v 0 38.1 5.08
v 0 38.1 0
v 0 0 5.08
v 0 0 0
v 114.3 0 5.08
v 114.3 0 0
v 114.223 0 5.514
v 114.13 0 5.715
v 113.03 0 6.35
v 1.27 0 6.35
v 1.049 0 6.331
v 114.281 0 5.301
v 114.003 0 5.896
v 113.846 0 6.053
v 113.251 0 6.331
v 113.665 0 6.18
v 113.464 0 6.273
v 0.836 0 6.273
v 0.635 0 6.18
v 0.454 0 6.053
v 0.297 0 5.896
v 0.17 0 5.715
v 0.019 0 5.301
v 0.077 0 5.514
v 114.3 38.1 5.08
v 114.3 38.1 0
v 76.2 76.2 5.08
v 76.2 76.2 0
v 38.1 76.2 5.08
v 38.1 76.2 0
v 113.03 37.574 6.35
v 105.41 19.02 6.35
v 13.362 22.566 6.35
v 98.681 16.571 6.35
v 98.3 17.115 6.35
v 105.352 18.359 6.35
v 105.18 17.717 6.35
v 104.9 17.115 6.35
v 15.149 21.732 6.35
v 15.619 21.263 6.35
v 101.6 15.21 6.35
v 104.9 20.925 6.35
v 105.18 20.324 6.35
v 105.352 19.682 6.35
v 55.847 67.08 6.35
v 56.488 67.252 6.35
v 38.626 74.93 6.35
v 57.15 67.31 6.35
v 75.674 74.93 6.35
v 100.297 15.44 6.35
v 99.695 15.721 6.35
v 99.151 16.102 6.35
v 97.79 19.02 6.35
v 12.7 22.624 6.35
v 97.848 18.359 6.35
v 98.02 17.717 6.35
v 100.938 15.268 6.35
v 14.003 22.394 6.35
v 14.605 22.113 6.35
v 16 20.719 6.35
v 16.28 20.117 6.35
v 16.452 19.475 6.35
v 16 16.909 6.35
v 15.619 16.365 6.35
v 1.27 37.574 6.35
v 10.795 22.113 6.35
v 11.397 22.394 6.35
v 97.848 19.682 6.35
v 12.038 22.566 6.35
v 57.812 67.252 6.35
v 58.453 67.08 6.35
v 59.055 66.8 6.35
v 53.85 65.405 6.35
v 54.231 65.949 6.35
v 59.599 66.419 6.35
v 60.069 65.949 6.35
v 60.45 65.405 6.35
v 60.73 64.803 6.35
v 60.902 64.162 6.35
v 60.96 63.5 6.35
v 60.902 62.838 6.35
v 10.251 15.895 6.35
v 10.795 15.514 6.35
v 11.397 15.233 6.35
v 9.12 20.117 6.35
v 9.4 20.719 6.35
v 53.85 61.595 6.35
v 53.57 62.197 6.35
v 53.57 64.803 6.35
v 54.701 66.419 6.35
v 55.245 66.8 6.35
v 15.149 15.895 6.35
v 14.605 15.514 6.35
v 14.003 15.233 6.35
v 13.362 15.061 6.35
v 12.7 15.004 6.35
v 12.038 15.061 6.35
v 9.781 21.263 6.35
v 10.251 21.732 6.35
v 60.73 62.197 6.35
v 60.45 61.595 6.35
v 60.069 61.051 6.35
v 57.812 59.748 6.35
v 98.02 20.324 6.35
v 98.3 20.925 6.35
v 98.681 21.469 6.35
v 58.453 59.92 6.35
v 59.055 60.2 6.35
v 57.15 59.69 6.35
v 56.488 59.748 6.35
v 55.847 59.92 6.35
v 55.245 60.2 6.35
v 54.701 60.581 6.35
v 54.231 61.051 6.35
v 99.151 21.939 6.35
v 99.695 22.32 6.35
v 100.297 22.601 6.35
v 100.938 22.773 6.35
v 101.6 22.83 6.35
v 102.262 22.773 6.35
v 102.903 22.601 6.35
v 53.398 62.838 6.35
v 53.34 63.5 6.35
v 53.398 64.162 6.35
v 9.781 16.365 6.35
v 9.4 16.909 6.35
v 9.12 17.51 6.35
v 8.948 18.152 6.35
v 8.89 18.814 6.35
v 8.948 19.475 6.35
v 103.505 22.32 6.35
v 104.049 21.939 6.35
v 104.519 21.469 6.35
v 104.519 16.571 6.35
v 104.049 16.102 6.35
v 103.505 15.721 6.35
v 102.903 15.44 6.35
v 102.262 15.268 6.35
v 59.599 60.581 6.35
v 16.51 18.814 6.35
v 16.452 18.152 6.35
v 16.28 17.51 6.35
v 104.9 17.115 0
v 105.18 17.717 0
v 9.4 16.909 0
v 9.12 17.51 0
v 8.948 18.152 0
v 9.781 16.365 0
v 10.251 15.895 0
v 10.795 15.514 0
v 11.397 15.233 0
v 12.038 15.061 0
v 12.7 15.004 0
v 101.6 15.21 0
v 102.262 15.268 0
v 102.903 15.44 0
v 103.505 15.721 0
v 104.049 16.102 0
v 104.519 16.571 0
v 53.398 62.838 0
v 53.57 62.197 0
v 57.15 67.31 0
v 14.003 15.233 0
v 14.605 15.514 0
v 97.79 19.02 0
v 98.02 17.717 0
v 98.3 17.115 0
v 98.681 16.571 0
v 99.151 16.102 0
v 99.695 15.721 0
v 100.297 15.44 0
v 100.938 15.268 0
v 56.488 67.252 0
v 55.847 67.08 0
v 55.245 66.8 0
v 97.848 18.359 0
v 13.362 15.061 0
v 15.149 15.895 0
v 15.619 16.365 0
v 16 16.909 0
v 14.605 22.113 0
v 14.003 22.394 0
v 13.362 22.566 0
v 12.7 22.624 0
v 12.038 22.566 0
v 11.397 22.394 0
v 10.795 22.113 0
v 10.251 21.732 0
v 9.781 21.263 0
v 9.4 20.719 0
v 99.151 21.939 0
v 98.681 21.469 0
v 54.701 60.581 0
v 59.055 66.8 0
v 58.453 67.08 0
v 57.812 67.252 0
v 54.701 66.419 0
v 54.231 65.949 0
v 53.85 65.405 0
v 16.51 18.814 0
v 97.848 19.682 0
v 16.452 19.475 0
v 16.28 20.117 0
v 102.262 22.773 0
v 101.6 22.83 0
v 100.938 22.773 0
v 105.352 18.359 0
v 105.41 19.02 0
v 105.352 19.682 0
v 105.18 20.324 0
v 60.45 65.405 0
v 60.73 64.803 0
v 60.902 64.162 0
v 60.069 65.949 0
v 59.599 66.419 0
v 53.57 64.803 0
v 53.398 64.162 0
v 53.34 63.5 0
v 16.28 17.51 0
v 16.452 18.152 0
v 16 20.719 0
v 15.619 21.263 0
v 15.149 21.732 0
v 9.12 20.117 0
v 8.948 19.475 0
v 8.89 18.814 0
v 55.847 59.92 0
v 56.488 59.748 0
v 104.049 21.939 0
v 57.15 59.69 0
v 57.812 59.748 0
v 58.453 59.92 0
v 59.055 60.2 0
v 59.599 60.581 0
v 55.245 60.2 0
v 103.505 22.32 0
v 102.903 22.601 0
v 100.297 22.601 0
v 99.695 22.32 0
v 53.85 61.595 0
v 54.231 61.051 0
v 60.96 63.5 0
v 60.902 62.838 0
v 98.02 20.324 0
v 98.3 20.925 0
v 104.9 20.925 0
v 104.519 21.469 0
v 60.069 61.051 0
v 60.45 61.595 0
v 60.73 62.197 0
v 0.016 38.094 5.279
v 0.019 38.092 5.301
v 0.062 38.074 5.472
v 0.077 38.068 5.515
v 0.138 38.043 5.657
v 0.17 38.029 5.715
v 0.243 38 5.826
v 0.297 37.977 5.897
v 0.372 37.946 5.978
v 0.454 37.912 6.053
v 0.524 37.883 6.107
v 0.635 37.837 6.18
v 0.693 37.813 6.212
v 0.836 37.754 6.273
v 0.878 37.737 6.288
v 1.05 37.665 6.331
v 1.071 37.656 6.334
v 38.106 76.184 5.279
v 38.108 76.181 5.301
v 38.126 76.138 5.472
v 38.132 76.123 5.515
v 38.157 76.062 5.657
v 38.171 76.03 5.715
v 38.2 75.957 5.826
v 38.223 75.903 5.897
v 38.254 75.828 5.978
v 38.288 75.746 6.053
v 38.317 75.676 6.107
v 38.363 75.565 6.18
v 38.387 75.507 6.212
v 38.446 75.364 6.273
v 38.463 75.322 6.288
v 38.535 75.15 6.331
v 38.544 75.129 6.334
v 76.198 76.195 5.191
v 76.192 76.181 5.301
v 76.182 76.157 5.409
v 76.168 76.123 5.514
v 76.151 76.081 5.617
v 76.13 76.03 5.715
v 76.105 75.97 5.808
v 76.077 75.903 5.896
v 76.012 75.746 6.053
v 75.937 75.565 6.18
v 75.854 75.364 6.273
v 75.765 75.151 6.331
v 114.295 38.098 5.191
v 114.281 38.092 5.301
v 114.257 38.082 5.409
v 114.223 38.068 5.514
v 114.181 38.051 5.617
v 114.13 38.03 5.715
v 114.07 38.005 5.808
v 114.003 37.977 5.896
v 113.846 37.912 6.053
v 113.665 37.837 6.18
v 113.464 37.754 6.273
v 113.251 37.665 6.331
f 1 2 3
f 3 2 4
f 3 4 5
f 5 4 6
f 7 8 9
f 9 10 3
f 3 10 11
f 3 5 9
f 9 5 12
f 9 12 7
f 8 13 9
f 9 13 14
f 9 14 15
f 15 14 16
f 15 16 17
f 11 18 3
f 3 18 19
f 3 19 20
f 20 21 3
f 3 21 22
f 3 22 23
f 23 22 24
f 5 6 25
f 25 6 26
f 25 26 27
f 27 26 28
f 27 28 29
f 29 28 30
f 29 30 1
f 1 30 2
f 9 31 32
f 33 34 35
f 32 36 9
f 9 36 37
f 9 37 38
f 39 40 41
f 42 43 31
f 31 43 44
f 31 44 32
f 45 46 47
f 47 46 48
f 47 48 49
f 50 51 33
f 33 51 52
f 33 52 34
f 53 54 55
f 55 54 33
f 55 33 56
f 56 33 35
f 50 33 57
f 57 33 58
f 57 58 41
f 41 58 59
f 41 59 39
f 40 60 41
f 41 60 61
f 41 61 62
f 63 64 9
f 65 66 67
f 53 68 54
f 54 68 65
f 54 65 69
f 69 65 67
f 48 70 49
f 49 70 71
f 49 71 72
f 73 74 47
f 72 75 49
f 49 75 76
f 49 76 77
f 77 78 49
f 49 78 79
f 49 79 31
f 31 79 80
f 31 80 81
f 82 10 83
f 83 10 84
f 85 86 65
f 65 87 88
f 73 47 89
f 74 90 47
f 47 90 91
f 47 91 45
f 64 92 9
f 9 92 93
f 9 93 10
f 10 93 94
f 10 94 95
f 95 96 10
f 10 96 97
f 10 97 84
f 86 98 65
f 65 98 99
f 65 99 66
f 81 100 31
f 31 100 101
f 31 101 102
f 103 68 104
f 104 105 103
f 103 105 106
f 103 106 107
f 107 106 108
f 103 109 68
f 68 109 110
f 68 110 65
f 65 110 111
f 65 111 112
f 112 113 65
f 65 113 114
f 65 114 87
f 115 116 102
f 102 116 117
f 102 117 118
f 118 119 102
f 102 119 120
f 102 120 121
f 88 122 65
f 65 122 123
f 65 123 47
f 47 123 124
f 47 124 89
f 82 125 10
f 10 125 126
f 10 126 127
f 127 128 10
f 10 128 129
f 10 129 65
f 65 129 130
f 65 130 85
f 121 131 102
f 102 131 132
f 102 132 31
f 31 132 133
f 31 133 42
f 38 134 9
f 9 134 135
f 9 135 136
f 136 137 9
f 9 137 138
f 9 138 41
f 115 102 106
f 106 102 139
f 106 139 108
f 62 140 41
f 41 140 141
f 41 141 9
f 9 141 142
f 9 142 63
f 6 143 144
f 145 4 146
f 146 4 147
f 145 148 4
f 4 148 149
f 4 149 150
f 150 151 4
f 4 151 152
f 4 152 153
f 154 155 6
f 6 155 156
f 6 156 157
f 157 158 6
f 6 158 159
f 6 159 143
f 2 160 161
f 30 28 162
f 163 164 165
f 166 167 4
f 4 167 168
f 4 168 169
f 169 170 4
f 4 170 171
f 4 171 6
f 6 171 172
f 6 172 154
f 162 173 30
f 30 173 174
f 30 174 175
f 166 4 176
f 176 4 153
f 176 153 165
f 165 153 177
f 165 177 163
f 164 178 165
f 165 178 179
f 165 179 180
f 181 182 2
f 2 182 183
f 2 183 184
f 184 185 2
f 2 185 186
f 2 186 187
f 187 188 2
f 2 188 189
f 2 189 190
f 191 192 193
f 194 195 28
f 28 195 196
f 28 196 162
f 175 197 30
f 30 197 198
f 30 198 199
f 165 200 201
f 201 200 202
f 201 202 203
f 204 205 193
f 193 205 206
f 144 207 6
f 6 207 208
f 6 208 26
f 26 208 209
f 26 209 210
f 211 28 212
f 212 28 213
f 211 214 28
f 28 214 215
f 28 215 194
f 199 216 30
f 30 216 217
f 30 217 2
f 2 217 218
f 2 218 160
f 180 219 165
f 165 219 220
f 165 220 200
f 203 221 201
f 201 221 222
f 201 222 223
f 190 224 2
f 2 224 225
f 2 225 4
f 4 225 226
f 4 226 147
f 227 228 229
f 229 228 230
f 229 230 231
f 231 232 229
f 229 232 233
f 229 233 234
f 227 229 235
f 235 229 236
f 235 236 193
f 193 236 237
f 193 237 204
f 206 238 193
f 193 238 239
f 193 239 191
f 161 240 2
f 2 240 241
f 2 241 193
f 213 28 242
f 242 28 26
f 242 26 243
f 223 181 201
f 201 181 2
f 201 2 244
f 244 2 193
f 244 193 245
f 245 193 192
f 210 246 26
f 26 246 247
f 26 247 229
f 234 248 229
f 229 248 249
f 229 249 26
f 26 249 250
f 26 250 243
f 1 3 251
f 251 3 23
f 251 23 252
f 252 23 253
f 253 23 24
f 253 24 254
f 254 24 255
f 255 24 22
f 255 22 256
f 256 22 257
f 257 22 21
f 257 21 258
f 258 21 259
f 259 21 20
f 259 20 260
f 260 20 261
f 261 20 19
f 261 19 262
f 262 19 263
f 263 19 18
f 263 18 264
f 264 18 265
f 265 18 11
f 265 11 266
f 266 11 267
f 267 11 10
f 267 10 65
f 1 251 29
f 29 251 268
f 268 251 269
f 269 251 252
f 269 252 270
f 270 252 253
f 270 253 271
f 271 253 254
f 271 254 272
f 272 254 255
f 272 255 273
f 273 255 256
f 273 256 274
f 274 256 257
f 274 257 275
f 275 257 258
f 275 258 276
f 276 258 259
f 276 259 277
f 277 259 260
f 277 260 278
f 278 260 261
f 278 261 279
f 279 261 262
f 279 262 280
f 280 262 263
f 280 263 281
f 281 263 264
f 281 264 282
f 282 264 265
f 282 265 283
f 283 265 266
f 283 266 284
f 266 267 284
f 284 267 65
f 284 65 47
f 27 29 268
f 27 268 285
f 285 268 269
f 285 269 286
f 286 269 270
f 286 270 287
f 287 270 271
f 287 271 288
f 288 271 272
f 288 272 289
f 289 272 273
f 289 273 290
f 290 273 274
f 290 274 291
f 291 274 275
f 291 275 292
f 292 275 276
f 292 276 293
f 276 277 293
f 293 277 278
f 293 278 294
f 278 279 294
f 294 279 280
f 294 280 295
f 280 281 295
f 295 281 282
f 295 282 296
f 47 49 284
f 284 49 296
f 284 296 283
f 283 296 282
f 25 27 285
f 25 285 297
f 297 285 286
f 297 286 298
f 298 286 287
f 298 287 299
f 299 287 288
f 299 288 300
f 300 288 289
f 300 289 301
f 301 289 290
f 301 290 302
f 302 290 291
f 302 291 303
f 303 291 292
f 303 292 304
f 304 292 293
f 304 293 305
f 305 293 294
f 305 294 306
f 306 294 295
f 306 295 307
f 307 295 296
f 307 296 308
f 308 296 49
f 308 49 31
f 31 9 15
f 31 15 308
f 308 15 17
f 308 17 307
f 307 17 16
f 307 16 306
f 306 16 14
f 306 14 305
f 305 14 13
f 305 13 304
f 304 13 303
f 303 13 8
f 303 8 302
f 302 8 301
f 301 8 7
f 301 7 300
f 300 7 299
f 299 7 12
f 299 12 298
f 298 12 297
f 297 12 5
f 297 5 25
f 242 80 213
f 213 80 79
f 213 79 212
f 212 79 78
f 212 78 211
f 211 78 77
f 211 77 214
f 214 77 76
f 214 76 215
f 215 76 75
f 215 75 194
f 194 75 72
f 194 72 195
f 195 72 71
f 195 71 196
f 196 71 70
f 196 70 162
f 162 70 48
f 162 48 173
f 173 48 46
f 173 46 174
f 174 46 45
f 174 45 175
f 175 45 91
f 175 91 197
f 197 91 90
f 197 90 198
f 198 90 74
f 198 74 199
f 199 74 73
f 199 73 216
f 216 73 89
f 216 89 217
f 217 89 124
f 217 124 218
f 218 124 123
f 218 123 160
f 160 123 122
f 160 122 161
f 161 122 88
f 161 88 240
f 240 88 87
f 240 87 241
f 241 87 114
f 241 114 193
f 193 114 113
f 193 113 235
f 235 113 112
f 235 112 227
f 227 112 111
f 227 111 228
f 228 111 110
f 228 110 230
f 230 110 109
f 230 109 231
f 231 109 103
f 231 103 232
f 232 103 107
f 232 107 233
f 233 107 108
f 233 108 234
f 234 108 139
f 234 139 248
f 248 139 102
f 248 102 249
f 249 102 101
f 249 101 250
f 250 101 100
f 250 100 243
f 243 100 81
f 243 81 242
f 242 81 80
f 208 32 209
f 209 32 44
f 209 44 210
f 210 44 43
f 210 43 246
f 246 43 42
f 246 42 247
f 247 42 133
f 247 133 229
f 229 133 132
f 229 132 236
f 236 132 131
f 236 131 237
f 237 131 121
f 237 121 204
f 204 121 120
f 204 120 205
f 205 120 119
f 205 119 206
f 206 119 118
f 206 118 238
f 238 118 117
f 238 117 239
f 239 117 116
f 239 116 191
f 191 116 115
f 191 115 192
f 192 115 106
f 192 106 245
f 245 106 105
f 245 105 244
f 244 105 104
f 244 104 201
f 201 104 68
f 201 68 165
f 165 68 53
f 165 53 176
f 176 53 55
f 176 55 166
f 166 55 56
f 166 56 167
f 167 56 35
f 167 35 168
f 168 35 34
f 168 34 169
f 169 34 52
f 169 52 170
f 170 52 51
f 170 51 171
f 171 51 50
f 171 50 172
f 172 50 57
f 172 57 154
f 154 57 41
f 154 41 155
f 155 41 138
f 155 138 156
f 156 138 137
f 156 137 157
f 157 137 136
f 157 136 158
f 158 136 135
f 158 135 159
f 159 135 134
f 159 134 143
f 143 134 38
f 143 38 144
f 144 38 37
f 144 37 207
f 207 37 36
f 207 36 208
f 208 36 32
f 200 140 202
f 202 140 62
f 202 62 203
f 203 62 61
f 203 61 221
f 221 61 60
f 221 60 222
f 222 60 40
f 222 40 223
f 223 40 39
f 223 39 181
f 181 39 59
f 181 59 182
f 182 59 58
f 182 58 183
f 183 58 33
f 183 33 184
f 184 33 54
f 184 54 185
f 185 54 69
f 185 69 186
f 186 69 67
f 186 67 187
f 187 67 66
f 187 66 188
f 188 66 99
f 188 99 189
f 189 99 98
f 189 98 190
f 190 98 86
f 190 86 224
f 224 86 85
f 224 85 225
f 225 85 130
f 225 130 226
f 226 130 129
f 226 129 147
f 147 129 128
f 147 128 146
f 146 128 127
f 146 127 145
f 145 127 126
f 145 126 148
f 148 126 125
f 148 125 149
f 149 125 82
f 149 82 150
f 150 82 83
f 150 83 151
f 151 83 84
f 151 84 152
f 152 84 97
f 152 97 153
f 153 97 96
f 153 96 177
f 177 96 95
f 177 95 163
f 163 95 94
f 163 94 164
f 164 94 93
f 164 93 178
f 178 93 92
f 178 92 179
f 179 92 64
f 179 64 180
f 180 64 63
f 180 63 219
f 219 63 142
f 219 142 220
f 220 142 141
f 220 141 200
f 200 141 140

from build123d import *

# Parameters (mm, degrees)
BOSS_EXTRUDE1_DEPTH = 6.35
FILLET1_R           = 1.27
SKETCH3_R           = 3.81
CUT_EXTRUDE1_DEPTH  = 6.35


with BuildPart() as part:
    # Sketch1 → Boss-Extrude1 (new body)
    with BuildSketch(Plane.XY):
        Polygon((0, 38.1), (38.1, 76.2), (76.2, 76.2), (114.3, 38.1), (114.3, 0), (0, 0), align=None)
    extrude(amount=BOSS_EXTRUDE1_DEPTH)

    # Fillet1
    fillet1_edges = [part.edges().sort_by_distance(p)[0] for p in [
        (114.3, 19.05, 6.35),
        (95.25, 57.15, 6.35),
        (57.15, 76.2, 6.35),
        (19.05, 57.15, 6.35),
        (0, 19.05, 6.35),
    ]]
    fillet(fillet1_edges, radius=FILLET1_R)

    # Sketch3 → Cut-Extrude1 (cut)
    with BuildSketch(Plane.XY.offset(6.35)):
        with Locations((12.7, 18.813572483)):
            Circle(SKETCH3_R)
        with Locations((101.6, 19.02044656)):
            Circle(SKETCH3_R)
        with Locations((57.15, 63.5)):
            Circle(SKETCH3_R)
    extrude(amount=-CUT_EXTRUDE1_DEPTH, mode=Mode.SUBTRACT)


solid = part.part
